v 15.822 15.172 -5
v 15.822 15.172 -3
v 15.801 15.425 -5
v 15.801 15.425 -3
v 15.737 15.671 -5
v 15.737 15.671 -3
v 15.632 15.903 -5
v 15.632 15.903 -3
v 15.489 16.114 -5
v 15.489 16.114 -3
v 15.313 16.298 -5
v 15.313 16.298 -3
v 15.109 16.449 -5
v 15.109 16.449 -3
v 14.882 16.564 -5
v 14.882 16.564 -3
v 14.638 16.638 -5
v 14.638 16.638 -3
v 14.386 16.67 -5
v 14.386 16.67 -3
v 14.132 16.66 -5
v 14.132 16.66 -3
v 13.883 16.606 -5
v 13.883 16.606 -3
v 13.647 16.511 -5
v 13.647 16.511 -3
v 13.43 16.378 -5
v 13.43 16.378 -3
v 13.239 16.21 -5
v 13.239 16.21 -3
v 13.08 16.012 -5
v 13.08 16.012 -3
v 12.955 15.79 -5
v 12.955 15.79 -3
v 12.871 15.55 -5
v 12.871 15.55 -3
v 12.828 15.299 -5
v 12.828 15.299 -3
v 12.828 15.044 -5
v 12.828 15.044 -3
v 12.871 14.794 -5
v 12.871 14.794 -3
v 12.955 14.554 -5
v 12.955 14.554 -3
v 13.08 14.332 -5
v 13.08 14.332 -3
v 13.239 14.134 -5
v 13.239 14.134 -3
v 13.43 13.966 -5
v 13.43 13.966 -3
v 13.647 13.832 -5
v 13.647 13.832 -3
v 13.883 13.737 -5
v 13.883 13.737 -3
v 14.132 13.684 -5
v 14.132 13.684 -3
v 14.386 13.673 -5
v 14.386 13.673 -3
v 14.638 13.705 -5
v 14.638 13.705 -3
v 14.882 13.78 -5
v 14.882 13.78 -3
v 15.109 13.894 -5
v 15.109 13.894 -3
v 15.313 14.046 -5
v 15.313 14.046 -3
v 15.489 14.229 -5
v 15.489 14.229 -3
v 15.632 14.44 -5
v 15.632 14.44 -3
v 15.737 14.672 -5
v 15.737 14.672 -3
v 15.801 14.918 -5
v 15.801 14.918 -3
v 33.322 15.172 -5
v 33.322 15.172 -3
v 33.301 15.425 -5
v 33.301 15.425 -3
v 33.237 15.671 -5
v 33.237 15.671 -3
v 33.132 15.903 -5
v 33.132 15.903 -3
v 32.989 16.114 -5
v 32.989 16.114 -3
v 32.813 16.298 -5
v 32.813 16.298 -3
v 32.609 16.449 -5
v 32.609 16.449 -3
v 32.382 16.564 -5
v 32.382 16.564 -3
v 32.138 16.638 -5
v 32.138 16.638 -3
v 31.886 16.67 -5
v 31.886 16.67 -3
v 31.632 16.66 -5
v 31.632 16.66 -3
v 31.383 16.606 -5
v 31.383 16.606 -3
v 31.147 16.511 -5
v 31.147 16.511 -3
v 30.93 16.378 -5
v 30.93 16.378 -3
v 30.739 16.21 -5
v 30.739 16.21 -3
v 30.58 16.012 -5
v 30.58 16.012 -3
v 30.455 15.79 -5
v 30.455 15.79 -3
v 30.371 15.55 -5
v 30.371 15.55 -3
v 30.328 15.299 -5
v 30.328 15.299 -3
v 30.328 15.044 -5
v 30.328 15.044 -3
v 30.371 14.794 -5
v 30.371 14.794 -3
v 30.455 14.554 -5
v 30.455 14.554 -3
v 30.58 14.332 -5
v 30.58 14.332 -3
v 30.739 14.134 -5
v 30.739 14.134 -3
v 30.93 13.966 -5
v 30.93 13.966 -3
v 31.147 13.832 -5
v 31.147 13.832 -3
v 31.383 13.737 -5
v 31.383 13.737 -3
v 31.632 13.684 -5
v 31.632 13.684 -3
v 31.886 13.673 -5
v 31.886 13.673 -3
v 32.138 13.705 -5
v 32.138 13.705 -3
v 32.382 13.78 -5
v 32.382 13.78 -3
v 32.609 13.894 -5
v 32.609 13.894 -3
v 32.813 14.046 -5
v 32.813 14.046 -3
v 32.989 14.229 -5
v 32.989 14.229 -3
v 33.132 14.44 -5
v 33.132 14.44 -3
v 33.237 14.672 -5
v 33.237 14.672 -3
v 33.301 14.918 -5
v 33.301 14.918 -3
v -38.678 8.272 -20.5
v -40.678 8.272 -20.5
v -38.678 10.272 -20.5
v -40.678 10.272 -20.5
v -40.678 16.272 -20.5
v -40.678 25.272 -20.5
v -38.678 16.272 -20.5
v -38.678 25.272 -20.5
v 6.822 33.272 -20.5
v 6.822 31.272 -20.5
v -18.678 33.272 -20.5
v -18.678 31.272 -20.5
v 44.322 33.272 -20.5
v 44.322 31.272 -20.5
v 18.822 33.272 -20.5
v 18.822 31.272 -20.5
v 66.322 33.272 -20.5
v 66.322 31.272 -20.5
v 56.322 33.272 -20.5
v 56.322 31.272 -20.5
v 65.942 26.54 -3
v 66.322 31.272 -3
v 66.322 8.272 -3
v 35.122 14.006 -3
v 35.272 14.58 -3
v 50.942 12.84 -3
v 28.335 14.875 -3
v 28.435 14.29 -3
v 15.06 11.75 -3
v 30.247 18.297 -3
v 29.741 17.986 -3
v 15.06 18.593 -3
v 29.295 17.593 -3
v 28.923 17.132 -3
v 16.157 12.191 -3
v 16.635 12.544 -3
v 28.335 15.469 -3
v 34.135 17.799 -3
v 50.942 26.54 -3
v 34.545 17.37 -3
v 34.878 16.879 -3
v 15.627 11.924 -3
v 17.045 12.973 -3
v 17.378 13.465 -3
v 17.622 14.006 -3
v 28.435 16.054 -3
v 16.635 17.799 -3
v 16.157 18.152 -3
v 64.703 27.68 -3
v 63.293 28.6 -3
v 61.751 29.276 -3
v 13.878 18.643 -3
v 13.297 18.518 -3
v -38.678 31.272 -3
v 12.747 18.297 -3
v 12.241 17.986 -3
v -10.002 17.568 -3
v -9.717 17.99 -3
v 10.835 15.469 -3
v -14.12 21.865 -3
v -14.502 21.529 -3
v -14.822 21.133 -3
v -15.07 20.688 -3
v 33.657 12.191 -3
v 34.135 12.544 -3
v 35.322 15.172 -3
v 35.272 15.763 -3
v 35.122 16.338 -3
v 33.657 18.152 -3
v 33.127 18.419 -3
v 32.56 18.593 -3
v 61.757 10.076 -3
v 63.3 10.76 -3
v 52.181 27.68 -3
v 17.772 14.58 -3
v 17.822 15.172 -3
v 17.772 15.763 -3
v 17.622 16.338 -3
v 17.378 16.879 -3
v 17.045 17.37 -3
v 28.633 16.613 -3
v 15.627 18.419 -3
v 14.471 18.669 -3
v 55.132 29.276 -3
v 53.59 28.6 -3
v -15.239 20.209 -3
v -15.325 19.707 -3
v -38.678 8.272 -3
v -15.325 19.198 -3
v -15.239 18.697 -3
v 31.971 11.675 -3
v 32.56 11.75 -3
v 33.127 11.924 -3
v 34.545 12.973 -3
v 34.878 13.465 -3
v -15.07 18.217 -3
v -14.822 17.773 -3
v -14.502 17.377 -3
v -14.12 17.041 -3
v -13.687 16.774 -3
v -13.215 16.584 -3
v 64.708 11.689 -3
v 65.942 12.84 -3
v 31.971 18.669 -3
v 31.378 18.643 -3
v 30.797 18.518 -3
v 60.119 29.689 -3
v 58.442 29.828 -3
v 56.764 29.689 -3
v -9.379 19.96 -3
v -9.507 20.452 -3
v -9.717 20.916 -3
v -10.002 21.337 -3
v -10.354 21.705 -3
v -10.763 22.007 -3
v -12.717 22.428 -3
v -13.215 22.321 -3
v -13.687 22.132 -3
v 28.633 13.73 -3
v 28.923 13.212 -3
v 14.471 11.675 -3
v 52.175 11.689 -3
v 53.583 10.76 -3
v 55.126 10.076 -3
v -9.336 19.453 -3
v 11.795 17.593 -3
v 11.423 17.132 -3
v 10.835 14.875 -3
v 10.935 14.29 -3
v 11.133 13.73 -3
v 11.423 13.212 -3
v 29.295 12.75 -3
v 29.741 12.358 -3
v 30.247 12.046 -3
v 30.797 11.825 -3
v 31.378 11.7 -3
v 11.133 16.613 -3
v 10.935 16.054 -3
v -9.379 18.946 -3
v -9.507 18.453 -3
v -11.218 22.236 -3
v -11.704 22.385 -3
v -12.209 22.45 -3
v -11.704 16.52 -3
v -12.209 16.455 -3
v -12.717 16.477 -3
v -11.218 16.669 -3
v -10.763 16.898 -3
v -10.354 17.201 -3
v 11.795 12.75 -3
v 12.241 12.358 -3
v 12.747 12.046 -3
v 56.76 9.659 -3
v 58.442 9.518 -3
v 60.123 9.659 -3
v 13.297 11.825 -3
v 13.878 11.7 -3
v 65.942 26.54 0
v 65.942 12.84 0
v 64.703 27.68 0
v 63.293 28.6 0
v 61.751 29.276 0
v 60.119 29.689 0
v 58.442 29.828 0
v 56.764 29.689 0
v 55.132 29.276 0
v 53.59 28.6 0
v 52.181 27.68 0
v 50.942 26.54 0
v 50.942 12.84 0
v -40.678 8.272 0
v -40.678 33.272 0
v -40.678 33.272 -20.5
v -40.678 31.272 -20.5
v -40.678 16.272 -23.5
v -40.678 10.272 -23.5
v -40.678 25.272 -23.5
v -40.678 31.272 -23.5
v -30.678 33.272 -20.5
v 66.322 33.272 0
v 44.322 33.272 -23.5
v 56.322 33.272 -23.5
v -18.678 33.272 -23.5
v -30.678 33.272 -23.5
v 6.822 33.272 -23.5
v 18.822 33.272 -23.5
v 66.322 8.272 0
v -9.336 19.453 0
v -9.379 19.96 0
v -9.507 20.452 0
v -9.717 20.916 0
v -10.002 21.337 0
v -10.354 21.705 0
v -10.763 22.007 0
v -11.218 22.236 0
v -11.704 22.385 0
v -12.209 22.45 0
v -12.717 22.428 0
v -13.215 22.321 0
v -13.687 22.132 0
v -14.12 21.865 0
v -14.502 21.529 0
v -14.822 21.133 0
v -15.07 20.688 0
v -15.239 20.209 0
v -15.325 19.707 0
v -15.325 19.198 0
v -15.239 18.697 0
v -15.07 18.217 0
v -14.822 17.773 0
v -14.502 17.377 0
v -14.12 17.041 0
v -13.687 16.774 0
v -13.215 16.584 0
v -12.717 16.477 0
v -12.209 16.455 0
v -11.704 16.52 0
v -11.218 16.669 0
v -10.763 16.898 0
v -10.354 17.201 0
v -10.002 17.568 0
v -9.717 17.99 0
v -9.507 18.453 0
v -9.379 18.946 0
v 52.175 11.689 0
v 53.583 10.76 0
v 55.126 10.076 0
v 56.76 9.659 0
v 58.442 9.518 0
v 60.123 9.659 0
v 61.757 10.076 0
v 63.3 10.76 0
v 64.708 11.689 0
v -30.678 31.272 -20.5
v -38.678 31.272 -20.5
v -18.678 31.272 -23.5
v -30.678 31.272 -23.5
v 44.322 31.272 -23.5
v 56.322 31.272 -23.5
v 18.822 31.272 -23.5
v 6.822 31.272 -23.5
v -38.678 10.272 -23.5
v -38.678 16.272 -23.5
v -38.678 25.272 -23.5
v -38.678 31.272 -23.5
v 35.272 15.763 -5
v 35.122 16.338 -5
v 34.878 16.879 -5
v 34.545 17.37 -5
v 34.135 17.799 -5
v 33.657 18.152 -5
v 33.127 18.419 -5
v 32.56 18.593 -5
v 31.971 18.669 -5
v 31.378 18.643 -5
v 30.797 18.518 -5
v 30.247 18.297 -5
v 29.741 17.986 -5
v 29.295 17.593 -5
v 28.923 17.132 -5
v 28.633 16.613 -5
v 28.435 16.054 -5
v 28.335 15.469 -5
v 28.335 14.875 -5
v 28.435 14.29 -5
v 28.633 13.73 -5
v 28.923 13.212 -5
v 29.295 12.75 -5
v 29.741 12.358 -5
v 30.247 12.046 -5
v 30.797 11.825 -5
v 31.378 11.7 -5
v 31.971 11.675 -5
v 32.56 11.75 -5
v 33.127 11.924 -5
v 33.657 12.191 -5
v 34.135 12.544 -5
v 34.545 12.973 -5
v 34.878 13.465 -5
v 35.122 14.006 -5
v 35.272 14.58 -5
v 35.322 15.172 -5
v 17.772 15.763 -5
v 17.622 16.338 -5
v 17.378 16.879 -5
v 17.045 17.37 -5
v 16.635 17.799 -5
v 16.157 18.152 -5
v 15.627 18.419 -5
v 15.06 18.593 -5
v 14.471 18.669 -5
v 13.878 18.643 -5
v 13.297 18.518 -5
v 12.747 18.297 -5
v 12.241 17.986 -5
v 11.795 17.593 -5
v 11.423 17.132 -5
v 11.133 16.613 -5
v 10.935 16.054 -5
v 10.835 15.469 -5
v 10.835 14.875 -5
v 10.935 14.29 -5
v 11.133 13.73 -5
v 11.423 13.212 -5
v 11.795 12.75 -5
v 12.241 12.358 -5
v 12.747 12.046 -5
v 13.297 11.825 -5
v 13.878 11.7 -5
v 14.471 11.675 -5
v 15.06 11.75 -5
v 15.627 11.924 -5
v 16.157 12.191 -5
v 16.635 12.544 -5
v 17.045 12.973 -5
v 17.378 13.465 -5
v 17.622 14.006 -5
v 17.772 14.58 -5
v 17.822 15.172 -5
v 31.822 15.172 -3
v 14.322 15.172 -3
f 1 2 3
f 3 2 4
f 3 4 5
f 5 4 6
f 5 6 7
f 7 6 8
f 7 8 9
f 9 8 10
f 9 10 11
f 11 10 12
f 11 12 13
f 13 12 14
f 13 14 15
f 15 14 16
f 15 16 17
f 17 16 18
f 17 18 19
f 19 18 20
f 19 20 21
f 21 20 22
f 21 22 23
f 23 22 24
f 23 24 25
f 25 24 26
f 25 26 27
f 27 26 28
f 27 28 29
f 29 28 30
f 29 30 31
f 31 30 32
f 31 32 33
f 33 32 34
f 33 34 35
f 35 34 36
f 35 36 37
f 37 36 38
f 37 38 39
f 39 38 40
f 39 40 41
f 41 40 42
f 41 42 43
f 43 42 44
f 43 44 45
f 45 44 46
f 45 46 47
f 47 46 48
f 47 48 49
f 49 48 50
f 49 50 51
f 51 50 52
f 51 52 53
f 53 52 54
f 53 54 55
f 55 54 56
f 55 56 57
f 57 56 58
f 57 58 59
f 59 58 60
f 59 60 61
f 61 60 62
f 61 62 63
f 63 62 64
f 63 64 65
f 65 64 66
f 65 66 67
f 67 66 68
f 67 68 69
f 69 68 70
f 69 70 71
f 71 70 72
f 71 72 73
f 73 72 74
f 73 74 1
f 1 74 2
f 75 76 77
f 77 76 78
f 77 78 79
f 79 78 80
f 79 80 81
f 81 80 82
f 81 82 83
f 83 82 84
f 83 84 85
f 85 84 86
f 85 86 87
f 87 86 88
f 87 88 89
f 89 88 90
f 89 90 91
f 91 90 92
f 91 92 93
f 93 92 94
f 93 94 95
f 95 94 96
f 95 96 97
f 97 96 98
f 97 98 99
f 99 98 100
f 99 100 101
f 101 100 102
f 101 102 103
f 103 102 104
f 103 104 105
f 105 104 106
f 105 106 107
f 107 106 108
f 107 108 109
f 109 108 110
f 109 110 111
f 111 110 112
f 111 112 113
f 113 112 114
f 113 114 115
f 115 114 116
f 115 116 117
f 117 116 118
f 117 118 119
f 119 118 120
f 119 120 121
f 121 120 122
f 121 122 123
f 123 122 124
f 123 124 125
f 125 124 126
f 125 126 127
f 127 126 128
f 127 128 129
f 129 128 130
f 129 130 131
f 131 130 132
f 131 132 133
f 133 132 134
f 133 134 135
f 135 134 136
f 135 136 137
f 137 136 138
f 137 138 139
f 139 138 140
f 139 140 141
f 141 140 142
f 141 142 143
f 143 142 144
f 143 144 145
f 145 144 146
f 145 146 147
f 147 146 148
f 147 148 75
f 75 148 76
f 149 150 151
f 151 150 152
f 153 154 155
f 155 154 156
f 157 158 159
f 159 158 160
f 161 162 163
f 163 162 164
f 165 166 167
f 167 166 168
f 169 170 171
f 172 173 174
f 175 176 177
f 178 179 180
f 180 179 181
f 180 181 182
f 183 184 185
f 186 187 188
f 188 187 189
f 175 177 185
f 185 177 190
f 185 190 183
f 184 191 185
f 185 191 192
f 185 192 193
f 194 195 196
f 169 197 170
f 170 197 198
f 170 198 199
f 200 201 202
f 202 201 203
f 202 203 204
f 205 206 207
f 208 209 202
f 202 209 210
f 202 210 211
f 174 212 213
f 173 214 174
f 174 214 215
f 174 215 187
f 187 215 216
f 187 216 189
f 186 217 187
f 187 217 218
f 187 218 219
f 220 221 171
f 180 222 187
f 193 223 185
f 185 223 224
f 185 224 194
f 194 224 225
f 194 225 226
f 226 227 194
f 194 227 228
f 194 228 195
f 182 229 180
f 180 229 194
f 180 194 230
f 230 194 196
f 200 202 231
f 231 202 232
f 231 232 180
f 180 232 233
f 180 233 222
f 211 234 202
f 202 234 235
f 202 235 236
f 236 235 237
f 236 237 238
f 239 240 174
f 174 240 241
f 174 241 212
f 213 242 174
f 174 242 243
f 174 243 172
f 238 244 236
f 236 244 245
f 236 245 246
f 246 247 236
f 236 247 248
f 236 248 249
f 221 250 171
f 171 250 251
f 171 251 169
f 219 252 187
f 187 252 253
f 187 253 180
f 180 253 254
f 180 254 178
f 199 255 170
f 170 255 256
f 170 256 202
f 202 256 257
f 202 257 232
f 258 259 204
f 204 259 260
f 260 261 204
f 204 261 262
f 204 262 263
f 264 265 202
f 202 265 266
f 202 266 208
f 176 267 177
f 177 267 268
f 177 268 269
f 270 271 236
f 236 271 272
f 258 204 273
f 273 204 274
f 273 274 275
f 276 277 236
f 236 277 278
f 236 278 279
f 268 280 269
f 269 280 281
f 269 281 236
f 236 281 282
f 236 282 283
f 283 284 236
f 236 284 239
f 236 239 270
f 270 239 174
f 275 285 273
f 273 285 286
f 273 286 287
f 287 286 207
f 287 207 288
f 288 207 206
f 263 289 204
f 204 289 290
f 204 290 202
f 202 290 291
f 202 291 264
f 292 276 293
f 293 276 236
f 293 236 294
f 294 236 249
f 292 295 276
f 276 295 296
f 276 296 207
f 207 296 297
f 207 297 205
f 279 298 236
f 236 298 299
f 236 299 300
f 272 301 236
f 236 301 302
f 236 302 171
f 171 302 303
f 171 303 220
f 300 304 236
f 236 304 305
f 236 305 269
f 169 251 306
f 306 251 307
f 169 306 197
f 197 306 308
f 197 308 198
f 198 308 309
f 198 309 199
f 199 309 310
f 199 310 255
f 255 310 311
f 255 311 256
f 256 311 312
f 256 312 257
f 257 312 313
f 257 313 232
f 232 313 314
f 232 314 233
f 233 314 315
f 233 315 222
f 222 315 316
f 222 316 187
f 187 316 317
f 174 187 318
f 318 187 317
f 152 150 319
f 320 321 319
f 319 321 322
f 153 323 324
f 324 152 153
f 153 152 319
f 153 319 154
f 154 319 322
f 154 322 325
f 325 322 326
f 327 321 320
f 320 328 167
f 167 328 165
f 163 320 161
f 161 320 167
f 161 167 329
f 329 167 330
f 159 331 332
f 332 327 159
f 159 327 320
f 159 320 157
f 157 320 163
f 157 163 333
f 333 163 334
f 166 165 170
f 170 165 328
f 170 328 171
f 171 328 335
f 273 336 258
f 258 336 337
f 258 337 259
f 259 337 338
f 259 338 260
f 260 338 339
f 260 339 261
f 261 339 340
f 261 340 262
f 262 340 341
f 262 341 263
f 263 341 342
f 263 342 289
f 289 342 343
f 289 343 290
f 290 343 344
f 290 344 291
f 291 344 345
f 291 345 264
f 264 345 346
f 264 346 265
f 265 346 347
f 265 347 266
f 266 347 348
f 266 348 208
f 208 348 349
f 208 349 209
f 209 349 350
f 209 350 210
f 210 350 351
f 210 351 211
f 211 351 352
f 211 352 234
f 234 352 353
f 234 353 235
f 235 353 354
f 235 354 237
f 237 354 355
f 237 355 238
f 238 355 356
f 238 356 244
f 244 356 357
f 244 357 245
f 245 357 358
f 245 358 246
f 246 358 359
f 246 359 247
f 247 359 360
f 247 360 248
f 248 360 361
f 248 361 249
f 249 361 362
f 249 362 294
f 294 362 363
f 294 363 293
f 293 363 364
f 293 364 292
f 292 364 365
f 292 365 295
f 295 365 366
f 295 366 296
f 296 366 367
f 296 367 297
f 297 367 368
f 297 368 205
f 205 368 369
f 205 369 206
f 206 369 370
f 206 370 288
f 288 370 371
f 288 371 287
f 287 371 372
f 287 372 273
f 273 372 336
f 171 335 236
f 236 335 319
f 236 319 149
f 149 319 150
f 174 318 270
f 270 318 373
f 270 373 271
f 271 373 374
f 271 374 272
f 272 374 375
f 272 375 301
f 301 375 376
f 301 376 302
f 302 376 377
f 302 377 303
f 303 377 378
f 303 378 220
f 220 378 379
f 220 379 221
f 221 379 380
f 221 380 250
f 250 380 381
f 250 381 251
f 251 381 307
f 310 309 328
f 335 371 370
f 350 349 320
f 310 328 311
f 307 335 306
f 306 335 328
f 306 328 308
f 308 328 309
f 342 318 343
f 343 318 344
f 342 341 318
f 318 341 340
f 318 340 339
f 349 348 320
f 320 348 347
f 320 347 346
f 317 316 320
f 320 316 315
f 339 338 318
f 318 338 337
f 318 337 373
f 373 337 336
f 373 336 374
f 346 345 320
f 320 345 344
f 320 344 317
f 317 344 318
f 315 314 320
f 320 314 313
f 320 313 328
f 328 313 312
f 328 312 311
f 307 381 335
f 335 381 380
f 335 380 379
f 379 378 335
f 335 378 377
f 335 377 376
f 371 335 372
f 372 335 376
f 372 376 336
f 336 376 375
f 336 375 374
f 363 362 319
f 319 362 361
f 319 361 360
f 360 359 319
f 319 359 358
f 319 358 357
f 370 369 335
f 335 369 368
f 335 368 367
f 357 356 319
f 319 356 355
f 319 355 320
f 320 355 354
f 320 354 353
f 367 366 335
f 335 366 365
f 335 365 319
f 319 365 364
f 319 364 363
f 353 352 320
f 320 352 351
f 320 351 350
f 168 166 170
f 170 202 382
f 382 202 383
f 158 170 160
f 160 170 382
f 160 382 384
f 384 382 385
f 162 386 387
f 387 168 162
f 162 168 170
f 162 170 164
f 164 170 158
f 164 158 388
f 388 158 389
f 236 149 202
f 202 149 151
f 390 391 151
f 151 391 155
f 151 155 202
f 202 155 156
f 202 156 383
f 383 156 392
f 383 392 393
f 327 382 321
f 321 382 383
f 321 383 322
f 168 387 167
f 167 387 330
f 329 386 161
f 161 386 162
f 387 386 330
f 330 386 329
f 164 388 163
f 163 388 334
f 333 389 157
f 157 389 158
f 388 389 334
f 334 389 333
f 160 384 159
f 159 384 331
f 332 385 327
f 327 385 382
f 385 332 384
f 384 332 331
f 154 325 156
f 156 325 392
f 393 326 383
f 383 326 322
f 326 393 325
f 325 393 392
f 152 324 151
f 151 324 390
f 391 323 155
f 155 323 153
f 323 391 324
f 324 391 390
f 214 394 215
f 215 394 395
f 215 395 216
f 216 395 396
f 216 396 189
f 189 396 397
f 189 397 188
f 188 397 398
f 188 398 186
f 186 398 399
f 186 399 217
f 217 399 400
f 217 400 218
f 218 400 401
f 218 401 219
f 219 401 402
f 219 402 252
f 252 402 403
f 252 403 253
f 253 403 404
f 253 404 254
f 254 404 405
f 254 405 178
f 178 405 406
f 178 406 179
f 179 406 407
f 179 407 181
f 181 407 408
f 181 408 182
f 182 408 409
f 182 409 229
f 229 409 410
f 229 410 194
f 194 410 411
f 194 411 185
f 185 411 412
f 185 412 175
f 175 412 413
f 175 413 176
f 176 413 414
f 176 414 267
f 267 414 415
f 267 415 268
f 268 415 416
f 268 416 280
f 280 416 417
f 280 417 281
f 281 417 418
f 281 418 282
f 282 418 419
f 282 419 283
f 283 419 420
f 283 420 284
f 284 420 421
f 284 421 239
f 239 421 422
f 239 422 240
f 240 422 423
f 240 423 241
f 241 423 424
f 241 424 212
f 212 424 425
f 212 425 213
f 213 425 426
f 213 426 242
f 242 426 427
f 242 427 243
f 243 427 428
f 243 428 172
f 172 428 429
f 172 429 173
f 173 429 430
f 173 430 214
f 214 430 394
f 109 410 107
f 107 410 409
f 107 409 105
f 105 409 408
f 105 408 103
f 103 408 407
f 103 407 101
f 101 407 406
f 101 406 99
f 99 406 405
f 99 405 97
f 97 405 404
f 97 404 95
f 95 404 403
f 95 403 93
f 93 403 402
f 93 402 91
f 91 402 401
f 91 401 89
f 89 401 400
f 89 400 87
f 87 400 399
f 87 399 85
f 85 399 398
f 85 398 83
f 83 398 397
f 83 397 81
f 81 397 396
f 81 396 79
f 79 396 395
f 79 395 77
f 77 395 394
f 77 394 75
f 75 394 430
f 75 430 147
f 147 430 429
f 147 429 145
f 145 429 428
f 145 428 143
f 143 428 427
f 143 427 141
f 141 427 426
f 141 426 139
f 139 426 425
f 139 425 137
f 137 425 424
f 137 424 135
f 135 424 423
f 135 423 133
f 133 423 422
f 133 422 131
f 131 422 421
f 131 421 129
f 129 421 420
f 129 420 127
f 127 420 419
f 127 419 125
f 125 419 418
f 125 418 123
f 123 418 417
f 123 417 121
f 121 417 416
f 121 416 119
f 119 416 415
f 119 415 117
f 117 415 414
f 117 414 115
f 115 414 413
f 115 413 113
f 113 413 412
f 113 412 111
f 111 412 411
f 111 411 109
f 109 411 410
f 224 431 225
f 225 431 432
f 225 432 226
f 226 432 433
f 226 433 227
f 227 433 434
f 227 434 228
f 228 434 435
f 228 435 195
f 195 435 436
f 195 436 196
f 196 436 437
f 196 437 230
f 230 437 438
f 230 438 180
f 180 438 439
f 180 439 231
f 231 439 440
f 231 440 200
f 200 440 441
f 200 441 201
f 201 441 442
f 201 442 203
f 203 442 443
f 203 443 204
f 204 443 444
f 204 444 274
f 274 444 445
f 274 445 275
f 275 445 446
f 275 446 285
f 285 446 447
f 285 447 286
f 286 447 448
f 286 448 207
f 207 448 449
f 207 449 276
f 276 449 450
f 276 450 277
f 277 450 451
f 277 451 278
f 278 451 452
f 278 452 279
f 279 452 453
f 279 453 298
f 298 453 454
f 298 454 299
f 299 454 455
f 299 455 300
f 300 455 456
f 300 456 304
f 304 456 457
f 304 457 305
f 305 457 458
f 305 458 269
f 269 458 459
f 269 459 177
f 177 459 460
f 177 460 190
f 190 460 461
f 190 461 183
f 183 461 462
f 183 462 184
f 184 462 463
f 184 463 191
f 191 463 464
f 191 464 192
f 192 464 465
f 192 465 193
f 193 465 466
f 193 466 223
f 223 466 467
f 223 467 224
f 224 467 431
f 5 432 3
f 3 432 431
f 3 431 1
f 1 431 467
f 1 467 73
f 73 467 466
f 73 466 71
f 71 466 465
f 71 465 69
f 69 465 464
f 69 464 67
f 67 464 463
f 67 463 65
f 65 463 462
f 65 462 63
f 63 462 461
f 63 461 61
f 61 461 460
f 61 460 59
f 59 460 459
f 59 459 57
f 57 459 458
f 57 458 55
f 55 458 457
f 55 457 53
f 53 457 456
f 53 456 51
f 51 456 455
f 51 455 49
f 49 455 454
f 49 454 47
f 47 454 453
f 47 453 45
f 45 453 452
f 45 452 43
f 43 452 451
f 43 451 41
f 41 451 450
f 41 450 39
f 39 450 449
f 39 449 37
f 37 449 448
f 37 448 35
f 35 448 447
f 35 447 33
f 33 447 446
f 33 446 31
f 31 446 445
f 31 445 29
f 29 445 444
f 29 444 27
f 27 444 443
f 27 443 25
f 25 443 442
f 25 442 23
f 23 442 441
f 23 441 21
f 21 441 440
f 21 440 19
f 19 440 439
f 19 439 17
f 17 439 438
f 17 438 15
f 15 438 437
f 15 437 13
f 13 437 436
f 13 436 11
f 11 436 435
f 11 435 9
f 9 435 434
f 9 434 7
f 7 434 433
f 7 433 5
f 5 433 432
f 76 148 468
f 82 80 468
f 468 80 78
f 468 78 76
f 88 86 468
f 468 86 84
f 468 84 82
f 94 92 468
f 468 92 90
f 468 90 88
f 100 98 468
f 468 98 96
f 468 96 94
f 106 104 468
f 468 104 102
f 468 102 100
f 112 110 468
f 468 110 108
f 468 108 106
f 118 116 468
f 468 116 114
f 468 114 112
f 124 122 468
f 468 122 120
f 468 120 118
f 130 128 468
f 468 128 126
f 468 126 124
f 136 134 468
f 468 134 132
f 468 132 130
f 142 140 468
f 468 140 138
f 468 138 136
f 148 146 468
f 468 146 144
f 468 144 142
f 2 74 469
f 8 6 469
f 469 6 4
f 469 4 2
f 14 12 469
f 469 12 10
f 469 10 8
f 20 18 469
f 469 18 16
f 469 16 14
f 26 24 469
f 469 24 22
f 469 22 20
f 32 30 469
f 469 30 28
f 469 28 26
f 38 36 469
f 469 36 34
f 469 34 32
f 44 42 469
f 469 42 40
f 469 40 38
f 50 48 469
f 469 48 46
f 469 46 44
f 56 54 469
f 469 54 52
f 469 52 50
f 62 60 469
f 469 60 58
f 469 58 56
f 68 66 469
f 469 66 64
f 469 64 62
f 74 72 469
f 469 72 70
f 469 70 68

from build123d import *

# Parameters (mm, degrees)
ESBO_O1_W                = 107
ESBO_O1_H                = 25
ESBO_O1_R                = 3
RESSALTO_EXTRUS_O1_DEPTH = 3
ESBO_O1_11_W             = 12
ESBO_O1_11_H             = 2
ESBO_O1_11_W_2           = 10
ESBO_O1_11_W_3           = 25.5
ESBO_O1_11_W_4           = 2
ESBO_O1_11_H_2           = 6
ESBO_O1_11_H_3           = 9
RESSALTO_EXTRUS_O2_DEPTH = 20.5
ESBO_O1_12_W             = 12
ESBO_O1_12_H             = 2
ESBO_O1_12_W_2           = 2
ESBO_O1_12_H_2           = 6
RESSALTO_EXTRUS_O3_DEPTH = 23.5
ESBO_O1_13_R             = 3.5
RESSALTO_EXTRUS_O4_DEPTH = 5
ESBO_O1_14_R             = 1.5
CORTE_EXTRUS_O1_DEPTH    = 5
ESBO_O1_15_R             = 1.5
RESSALTO_EXTRUS_O5_DEPTH = 3


with BuildPart() as part:
    # Esboço1 → Ressalto-extrusão1 (new body)
    with BuildSketch(Plane.XY):
        with Locations((12.82231405, 20.771694215)):
            Rectangle(ESBO_O1_W, ESBO_O1_H)
        with BuildLine():
            Line((50.941584595, 12.8399279), (50.941584595, 26.5399279))
            ThreePointArc((50.941584595, 26.5399279), (58.441584595, 29.827875939), (65.941584595, 26.5399279))
            Line((65.941584595, 26.5399279), (65.941584595, 12.8399279))
            ThreePointArc((65.941584595, 12.8399279), (58.441584595, 9.518237762), (50.941584595, 12.8399279))
        make_face(mode=Mode.SUBTRACT)
        with Locations((-12.336122998, 19.452784517)):
            Circle(ESBO_O1_R, mode=Mode.SUBTRACT)
    extrude(amount=-RESSALTO_EXTRUS_O1_DEPTH)

    # Esboço1<11> → Ressalto-extrusão2 (add)
    with BuildSketch(Plane.XY):
        with Locations((50.32231405, 32.271694215)):
            Rectangle(ESBO_O1_11_W, ESBO_O1_11_H)
        with Locations((61.32231405, 32.271694215)):
            Rectangle(ESBO_O1_11_W_2, ESBO_O1_11_H)
        with Locations((31.57231405, 32.271694215)):
            Rectangle(ESBO_O1_11_W_3, ESBO_O1_11_H)
        with Locations((12.82231405, 32.271694215)):
            Rectangle(ESBO_O1_11_W, ESBO_O1_11_H)
        with Locations((-5.92768595, 32.271694215)):
            Rectangle(ESBO_O1_11_W_3, ESBO_O1_11_H)
        with Locations((-24.67768595, 32.271694215)):
            Rectangle(ESBO_O1_11_W, ESBO_O1_11_H)
        Polygon((-30.67768595, 33.271694215), (-40.67768595, 33.271694215), (-40.67768595, 31.271694215), (-38.67768595, 31.271694215), (-30.67768595, 31.271694215), align=None)
        with Locations((-39.67768595, 28.271694215)):
            Rectangle(ESBO_O1_11_W_4, ESBO_O1_11_H_2)
        with Locations((-39.67768595, 20.771694215)):
            Rectangle(ESBO_O1_11_W_4, ESBO_O1_11_H_3)
        with Locations((-39.67768595, 13.271694215)):
            Rectangle(ESBO_O1_11_W_4, ESBO_O1_11_H_2)
        with Locations((-39.67768595, 9.271694215)):
            Rectangle(ESBO_O1_11_W_4, ESBO_O1_11_H)
    extrude(amount=-RESSALTO_EXTRUS_O2_DEPTH)

    # Esboço1<12> → Ressalto-extrusão3 (add)
    with BuildSketch(Plane.XY):
        with Locations((50.32231405, 32.271694215)):
            Rectangle(ESBO_O1_12_W, ESBO_O1_12_H)
        with Locations((12.82231405, 32.271694215)):
            Rectangle(ESBO_O1_12_W, ESBO_O1_12_H)
        with Locations((-24.67768595, 32.271694215)):
            Rectangle(ESBO_O1_12_W, ESBO_O1_12_H)
        with Locations((-39.67768595, 28.271694215)):
            Rectangle(ESBO_O1_12_W_2, ESBO_O1_12_H_2)
        with Locations((-39.67768595, 13.271694215)):
            Rectangle(ESBO_O1_12_W_2, ESBO_O1_12_H_2)
    extrude(amount=-RESSALTO_EXTRUS_O3_DEPTH)

    # Esboço1<13> → Ressalto-extrusão4 (add)
    with BuildSketch(Plane.XY):
        with Locations((14.32231405, 15.171694215)):
            Circle(ESBO_O1_13_R)
        with Locations((31.82231405, 15.171694215)):
            Circle(ESBO_O1_13_R)
    extrude(amount=-RESSALTO_EXTRUS_O4_DEPTH)

    # Esboço1<14> → Corte-extrusão1 (cut)
    with BuildSketch(Plane.XY):
        with Locations((14.32231405, 15.171694215)):
            Circle(ESBO_O1_14_R)
        with Locations((31.82231405, 15.171694215)):
            Circle(ESBO_O1_14_R)
    extrude(amount=-CORTE_EXTRUS_O1_DEPTH, mode=Mode.SUBTRACT)

    # Esboço1<15> → Ressalto-extrusão5 (add)
    with BuildSketch(Plane.XY):
        with Locations((14.32231405, 15.171694215)):
            Circle(ESBO_O1_15_R)
        with Locations((31.82231405, 15.171694215)):
            Circle(ESBO_O1_15_R)
    extrude(amount=-RESSALTO_EXTRUS_O5_DEPTH)


solid = part.part
